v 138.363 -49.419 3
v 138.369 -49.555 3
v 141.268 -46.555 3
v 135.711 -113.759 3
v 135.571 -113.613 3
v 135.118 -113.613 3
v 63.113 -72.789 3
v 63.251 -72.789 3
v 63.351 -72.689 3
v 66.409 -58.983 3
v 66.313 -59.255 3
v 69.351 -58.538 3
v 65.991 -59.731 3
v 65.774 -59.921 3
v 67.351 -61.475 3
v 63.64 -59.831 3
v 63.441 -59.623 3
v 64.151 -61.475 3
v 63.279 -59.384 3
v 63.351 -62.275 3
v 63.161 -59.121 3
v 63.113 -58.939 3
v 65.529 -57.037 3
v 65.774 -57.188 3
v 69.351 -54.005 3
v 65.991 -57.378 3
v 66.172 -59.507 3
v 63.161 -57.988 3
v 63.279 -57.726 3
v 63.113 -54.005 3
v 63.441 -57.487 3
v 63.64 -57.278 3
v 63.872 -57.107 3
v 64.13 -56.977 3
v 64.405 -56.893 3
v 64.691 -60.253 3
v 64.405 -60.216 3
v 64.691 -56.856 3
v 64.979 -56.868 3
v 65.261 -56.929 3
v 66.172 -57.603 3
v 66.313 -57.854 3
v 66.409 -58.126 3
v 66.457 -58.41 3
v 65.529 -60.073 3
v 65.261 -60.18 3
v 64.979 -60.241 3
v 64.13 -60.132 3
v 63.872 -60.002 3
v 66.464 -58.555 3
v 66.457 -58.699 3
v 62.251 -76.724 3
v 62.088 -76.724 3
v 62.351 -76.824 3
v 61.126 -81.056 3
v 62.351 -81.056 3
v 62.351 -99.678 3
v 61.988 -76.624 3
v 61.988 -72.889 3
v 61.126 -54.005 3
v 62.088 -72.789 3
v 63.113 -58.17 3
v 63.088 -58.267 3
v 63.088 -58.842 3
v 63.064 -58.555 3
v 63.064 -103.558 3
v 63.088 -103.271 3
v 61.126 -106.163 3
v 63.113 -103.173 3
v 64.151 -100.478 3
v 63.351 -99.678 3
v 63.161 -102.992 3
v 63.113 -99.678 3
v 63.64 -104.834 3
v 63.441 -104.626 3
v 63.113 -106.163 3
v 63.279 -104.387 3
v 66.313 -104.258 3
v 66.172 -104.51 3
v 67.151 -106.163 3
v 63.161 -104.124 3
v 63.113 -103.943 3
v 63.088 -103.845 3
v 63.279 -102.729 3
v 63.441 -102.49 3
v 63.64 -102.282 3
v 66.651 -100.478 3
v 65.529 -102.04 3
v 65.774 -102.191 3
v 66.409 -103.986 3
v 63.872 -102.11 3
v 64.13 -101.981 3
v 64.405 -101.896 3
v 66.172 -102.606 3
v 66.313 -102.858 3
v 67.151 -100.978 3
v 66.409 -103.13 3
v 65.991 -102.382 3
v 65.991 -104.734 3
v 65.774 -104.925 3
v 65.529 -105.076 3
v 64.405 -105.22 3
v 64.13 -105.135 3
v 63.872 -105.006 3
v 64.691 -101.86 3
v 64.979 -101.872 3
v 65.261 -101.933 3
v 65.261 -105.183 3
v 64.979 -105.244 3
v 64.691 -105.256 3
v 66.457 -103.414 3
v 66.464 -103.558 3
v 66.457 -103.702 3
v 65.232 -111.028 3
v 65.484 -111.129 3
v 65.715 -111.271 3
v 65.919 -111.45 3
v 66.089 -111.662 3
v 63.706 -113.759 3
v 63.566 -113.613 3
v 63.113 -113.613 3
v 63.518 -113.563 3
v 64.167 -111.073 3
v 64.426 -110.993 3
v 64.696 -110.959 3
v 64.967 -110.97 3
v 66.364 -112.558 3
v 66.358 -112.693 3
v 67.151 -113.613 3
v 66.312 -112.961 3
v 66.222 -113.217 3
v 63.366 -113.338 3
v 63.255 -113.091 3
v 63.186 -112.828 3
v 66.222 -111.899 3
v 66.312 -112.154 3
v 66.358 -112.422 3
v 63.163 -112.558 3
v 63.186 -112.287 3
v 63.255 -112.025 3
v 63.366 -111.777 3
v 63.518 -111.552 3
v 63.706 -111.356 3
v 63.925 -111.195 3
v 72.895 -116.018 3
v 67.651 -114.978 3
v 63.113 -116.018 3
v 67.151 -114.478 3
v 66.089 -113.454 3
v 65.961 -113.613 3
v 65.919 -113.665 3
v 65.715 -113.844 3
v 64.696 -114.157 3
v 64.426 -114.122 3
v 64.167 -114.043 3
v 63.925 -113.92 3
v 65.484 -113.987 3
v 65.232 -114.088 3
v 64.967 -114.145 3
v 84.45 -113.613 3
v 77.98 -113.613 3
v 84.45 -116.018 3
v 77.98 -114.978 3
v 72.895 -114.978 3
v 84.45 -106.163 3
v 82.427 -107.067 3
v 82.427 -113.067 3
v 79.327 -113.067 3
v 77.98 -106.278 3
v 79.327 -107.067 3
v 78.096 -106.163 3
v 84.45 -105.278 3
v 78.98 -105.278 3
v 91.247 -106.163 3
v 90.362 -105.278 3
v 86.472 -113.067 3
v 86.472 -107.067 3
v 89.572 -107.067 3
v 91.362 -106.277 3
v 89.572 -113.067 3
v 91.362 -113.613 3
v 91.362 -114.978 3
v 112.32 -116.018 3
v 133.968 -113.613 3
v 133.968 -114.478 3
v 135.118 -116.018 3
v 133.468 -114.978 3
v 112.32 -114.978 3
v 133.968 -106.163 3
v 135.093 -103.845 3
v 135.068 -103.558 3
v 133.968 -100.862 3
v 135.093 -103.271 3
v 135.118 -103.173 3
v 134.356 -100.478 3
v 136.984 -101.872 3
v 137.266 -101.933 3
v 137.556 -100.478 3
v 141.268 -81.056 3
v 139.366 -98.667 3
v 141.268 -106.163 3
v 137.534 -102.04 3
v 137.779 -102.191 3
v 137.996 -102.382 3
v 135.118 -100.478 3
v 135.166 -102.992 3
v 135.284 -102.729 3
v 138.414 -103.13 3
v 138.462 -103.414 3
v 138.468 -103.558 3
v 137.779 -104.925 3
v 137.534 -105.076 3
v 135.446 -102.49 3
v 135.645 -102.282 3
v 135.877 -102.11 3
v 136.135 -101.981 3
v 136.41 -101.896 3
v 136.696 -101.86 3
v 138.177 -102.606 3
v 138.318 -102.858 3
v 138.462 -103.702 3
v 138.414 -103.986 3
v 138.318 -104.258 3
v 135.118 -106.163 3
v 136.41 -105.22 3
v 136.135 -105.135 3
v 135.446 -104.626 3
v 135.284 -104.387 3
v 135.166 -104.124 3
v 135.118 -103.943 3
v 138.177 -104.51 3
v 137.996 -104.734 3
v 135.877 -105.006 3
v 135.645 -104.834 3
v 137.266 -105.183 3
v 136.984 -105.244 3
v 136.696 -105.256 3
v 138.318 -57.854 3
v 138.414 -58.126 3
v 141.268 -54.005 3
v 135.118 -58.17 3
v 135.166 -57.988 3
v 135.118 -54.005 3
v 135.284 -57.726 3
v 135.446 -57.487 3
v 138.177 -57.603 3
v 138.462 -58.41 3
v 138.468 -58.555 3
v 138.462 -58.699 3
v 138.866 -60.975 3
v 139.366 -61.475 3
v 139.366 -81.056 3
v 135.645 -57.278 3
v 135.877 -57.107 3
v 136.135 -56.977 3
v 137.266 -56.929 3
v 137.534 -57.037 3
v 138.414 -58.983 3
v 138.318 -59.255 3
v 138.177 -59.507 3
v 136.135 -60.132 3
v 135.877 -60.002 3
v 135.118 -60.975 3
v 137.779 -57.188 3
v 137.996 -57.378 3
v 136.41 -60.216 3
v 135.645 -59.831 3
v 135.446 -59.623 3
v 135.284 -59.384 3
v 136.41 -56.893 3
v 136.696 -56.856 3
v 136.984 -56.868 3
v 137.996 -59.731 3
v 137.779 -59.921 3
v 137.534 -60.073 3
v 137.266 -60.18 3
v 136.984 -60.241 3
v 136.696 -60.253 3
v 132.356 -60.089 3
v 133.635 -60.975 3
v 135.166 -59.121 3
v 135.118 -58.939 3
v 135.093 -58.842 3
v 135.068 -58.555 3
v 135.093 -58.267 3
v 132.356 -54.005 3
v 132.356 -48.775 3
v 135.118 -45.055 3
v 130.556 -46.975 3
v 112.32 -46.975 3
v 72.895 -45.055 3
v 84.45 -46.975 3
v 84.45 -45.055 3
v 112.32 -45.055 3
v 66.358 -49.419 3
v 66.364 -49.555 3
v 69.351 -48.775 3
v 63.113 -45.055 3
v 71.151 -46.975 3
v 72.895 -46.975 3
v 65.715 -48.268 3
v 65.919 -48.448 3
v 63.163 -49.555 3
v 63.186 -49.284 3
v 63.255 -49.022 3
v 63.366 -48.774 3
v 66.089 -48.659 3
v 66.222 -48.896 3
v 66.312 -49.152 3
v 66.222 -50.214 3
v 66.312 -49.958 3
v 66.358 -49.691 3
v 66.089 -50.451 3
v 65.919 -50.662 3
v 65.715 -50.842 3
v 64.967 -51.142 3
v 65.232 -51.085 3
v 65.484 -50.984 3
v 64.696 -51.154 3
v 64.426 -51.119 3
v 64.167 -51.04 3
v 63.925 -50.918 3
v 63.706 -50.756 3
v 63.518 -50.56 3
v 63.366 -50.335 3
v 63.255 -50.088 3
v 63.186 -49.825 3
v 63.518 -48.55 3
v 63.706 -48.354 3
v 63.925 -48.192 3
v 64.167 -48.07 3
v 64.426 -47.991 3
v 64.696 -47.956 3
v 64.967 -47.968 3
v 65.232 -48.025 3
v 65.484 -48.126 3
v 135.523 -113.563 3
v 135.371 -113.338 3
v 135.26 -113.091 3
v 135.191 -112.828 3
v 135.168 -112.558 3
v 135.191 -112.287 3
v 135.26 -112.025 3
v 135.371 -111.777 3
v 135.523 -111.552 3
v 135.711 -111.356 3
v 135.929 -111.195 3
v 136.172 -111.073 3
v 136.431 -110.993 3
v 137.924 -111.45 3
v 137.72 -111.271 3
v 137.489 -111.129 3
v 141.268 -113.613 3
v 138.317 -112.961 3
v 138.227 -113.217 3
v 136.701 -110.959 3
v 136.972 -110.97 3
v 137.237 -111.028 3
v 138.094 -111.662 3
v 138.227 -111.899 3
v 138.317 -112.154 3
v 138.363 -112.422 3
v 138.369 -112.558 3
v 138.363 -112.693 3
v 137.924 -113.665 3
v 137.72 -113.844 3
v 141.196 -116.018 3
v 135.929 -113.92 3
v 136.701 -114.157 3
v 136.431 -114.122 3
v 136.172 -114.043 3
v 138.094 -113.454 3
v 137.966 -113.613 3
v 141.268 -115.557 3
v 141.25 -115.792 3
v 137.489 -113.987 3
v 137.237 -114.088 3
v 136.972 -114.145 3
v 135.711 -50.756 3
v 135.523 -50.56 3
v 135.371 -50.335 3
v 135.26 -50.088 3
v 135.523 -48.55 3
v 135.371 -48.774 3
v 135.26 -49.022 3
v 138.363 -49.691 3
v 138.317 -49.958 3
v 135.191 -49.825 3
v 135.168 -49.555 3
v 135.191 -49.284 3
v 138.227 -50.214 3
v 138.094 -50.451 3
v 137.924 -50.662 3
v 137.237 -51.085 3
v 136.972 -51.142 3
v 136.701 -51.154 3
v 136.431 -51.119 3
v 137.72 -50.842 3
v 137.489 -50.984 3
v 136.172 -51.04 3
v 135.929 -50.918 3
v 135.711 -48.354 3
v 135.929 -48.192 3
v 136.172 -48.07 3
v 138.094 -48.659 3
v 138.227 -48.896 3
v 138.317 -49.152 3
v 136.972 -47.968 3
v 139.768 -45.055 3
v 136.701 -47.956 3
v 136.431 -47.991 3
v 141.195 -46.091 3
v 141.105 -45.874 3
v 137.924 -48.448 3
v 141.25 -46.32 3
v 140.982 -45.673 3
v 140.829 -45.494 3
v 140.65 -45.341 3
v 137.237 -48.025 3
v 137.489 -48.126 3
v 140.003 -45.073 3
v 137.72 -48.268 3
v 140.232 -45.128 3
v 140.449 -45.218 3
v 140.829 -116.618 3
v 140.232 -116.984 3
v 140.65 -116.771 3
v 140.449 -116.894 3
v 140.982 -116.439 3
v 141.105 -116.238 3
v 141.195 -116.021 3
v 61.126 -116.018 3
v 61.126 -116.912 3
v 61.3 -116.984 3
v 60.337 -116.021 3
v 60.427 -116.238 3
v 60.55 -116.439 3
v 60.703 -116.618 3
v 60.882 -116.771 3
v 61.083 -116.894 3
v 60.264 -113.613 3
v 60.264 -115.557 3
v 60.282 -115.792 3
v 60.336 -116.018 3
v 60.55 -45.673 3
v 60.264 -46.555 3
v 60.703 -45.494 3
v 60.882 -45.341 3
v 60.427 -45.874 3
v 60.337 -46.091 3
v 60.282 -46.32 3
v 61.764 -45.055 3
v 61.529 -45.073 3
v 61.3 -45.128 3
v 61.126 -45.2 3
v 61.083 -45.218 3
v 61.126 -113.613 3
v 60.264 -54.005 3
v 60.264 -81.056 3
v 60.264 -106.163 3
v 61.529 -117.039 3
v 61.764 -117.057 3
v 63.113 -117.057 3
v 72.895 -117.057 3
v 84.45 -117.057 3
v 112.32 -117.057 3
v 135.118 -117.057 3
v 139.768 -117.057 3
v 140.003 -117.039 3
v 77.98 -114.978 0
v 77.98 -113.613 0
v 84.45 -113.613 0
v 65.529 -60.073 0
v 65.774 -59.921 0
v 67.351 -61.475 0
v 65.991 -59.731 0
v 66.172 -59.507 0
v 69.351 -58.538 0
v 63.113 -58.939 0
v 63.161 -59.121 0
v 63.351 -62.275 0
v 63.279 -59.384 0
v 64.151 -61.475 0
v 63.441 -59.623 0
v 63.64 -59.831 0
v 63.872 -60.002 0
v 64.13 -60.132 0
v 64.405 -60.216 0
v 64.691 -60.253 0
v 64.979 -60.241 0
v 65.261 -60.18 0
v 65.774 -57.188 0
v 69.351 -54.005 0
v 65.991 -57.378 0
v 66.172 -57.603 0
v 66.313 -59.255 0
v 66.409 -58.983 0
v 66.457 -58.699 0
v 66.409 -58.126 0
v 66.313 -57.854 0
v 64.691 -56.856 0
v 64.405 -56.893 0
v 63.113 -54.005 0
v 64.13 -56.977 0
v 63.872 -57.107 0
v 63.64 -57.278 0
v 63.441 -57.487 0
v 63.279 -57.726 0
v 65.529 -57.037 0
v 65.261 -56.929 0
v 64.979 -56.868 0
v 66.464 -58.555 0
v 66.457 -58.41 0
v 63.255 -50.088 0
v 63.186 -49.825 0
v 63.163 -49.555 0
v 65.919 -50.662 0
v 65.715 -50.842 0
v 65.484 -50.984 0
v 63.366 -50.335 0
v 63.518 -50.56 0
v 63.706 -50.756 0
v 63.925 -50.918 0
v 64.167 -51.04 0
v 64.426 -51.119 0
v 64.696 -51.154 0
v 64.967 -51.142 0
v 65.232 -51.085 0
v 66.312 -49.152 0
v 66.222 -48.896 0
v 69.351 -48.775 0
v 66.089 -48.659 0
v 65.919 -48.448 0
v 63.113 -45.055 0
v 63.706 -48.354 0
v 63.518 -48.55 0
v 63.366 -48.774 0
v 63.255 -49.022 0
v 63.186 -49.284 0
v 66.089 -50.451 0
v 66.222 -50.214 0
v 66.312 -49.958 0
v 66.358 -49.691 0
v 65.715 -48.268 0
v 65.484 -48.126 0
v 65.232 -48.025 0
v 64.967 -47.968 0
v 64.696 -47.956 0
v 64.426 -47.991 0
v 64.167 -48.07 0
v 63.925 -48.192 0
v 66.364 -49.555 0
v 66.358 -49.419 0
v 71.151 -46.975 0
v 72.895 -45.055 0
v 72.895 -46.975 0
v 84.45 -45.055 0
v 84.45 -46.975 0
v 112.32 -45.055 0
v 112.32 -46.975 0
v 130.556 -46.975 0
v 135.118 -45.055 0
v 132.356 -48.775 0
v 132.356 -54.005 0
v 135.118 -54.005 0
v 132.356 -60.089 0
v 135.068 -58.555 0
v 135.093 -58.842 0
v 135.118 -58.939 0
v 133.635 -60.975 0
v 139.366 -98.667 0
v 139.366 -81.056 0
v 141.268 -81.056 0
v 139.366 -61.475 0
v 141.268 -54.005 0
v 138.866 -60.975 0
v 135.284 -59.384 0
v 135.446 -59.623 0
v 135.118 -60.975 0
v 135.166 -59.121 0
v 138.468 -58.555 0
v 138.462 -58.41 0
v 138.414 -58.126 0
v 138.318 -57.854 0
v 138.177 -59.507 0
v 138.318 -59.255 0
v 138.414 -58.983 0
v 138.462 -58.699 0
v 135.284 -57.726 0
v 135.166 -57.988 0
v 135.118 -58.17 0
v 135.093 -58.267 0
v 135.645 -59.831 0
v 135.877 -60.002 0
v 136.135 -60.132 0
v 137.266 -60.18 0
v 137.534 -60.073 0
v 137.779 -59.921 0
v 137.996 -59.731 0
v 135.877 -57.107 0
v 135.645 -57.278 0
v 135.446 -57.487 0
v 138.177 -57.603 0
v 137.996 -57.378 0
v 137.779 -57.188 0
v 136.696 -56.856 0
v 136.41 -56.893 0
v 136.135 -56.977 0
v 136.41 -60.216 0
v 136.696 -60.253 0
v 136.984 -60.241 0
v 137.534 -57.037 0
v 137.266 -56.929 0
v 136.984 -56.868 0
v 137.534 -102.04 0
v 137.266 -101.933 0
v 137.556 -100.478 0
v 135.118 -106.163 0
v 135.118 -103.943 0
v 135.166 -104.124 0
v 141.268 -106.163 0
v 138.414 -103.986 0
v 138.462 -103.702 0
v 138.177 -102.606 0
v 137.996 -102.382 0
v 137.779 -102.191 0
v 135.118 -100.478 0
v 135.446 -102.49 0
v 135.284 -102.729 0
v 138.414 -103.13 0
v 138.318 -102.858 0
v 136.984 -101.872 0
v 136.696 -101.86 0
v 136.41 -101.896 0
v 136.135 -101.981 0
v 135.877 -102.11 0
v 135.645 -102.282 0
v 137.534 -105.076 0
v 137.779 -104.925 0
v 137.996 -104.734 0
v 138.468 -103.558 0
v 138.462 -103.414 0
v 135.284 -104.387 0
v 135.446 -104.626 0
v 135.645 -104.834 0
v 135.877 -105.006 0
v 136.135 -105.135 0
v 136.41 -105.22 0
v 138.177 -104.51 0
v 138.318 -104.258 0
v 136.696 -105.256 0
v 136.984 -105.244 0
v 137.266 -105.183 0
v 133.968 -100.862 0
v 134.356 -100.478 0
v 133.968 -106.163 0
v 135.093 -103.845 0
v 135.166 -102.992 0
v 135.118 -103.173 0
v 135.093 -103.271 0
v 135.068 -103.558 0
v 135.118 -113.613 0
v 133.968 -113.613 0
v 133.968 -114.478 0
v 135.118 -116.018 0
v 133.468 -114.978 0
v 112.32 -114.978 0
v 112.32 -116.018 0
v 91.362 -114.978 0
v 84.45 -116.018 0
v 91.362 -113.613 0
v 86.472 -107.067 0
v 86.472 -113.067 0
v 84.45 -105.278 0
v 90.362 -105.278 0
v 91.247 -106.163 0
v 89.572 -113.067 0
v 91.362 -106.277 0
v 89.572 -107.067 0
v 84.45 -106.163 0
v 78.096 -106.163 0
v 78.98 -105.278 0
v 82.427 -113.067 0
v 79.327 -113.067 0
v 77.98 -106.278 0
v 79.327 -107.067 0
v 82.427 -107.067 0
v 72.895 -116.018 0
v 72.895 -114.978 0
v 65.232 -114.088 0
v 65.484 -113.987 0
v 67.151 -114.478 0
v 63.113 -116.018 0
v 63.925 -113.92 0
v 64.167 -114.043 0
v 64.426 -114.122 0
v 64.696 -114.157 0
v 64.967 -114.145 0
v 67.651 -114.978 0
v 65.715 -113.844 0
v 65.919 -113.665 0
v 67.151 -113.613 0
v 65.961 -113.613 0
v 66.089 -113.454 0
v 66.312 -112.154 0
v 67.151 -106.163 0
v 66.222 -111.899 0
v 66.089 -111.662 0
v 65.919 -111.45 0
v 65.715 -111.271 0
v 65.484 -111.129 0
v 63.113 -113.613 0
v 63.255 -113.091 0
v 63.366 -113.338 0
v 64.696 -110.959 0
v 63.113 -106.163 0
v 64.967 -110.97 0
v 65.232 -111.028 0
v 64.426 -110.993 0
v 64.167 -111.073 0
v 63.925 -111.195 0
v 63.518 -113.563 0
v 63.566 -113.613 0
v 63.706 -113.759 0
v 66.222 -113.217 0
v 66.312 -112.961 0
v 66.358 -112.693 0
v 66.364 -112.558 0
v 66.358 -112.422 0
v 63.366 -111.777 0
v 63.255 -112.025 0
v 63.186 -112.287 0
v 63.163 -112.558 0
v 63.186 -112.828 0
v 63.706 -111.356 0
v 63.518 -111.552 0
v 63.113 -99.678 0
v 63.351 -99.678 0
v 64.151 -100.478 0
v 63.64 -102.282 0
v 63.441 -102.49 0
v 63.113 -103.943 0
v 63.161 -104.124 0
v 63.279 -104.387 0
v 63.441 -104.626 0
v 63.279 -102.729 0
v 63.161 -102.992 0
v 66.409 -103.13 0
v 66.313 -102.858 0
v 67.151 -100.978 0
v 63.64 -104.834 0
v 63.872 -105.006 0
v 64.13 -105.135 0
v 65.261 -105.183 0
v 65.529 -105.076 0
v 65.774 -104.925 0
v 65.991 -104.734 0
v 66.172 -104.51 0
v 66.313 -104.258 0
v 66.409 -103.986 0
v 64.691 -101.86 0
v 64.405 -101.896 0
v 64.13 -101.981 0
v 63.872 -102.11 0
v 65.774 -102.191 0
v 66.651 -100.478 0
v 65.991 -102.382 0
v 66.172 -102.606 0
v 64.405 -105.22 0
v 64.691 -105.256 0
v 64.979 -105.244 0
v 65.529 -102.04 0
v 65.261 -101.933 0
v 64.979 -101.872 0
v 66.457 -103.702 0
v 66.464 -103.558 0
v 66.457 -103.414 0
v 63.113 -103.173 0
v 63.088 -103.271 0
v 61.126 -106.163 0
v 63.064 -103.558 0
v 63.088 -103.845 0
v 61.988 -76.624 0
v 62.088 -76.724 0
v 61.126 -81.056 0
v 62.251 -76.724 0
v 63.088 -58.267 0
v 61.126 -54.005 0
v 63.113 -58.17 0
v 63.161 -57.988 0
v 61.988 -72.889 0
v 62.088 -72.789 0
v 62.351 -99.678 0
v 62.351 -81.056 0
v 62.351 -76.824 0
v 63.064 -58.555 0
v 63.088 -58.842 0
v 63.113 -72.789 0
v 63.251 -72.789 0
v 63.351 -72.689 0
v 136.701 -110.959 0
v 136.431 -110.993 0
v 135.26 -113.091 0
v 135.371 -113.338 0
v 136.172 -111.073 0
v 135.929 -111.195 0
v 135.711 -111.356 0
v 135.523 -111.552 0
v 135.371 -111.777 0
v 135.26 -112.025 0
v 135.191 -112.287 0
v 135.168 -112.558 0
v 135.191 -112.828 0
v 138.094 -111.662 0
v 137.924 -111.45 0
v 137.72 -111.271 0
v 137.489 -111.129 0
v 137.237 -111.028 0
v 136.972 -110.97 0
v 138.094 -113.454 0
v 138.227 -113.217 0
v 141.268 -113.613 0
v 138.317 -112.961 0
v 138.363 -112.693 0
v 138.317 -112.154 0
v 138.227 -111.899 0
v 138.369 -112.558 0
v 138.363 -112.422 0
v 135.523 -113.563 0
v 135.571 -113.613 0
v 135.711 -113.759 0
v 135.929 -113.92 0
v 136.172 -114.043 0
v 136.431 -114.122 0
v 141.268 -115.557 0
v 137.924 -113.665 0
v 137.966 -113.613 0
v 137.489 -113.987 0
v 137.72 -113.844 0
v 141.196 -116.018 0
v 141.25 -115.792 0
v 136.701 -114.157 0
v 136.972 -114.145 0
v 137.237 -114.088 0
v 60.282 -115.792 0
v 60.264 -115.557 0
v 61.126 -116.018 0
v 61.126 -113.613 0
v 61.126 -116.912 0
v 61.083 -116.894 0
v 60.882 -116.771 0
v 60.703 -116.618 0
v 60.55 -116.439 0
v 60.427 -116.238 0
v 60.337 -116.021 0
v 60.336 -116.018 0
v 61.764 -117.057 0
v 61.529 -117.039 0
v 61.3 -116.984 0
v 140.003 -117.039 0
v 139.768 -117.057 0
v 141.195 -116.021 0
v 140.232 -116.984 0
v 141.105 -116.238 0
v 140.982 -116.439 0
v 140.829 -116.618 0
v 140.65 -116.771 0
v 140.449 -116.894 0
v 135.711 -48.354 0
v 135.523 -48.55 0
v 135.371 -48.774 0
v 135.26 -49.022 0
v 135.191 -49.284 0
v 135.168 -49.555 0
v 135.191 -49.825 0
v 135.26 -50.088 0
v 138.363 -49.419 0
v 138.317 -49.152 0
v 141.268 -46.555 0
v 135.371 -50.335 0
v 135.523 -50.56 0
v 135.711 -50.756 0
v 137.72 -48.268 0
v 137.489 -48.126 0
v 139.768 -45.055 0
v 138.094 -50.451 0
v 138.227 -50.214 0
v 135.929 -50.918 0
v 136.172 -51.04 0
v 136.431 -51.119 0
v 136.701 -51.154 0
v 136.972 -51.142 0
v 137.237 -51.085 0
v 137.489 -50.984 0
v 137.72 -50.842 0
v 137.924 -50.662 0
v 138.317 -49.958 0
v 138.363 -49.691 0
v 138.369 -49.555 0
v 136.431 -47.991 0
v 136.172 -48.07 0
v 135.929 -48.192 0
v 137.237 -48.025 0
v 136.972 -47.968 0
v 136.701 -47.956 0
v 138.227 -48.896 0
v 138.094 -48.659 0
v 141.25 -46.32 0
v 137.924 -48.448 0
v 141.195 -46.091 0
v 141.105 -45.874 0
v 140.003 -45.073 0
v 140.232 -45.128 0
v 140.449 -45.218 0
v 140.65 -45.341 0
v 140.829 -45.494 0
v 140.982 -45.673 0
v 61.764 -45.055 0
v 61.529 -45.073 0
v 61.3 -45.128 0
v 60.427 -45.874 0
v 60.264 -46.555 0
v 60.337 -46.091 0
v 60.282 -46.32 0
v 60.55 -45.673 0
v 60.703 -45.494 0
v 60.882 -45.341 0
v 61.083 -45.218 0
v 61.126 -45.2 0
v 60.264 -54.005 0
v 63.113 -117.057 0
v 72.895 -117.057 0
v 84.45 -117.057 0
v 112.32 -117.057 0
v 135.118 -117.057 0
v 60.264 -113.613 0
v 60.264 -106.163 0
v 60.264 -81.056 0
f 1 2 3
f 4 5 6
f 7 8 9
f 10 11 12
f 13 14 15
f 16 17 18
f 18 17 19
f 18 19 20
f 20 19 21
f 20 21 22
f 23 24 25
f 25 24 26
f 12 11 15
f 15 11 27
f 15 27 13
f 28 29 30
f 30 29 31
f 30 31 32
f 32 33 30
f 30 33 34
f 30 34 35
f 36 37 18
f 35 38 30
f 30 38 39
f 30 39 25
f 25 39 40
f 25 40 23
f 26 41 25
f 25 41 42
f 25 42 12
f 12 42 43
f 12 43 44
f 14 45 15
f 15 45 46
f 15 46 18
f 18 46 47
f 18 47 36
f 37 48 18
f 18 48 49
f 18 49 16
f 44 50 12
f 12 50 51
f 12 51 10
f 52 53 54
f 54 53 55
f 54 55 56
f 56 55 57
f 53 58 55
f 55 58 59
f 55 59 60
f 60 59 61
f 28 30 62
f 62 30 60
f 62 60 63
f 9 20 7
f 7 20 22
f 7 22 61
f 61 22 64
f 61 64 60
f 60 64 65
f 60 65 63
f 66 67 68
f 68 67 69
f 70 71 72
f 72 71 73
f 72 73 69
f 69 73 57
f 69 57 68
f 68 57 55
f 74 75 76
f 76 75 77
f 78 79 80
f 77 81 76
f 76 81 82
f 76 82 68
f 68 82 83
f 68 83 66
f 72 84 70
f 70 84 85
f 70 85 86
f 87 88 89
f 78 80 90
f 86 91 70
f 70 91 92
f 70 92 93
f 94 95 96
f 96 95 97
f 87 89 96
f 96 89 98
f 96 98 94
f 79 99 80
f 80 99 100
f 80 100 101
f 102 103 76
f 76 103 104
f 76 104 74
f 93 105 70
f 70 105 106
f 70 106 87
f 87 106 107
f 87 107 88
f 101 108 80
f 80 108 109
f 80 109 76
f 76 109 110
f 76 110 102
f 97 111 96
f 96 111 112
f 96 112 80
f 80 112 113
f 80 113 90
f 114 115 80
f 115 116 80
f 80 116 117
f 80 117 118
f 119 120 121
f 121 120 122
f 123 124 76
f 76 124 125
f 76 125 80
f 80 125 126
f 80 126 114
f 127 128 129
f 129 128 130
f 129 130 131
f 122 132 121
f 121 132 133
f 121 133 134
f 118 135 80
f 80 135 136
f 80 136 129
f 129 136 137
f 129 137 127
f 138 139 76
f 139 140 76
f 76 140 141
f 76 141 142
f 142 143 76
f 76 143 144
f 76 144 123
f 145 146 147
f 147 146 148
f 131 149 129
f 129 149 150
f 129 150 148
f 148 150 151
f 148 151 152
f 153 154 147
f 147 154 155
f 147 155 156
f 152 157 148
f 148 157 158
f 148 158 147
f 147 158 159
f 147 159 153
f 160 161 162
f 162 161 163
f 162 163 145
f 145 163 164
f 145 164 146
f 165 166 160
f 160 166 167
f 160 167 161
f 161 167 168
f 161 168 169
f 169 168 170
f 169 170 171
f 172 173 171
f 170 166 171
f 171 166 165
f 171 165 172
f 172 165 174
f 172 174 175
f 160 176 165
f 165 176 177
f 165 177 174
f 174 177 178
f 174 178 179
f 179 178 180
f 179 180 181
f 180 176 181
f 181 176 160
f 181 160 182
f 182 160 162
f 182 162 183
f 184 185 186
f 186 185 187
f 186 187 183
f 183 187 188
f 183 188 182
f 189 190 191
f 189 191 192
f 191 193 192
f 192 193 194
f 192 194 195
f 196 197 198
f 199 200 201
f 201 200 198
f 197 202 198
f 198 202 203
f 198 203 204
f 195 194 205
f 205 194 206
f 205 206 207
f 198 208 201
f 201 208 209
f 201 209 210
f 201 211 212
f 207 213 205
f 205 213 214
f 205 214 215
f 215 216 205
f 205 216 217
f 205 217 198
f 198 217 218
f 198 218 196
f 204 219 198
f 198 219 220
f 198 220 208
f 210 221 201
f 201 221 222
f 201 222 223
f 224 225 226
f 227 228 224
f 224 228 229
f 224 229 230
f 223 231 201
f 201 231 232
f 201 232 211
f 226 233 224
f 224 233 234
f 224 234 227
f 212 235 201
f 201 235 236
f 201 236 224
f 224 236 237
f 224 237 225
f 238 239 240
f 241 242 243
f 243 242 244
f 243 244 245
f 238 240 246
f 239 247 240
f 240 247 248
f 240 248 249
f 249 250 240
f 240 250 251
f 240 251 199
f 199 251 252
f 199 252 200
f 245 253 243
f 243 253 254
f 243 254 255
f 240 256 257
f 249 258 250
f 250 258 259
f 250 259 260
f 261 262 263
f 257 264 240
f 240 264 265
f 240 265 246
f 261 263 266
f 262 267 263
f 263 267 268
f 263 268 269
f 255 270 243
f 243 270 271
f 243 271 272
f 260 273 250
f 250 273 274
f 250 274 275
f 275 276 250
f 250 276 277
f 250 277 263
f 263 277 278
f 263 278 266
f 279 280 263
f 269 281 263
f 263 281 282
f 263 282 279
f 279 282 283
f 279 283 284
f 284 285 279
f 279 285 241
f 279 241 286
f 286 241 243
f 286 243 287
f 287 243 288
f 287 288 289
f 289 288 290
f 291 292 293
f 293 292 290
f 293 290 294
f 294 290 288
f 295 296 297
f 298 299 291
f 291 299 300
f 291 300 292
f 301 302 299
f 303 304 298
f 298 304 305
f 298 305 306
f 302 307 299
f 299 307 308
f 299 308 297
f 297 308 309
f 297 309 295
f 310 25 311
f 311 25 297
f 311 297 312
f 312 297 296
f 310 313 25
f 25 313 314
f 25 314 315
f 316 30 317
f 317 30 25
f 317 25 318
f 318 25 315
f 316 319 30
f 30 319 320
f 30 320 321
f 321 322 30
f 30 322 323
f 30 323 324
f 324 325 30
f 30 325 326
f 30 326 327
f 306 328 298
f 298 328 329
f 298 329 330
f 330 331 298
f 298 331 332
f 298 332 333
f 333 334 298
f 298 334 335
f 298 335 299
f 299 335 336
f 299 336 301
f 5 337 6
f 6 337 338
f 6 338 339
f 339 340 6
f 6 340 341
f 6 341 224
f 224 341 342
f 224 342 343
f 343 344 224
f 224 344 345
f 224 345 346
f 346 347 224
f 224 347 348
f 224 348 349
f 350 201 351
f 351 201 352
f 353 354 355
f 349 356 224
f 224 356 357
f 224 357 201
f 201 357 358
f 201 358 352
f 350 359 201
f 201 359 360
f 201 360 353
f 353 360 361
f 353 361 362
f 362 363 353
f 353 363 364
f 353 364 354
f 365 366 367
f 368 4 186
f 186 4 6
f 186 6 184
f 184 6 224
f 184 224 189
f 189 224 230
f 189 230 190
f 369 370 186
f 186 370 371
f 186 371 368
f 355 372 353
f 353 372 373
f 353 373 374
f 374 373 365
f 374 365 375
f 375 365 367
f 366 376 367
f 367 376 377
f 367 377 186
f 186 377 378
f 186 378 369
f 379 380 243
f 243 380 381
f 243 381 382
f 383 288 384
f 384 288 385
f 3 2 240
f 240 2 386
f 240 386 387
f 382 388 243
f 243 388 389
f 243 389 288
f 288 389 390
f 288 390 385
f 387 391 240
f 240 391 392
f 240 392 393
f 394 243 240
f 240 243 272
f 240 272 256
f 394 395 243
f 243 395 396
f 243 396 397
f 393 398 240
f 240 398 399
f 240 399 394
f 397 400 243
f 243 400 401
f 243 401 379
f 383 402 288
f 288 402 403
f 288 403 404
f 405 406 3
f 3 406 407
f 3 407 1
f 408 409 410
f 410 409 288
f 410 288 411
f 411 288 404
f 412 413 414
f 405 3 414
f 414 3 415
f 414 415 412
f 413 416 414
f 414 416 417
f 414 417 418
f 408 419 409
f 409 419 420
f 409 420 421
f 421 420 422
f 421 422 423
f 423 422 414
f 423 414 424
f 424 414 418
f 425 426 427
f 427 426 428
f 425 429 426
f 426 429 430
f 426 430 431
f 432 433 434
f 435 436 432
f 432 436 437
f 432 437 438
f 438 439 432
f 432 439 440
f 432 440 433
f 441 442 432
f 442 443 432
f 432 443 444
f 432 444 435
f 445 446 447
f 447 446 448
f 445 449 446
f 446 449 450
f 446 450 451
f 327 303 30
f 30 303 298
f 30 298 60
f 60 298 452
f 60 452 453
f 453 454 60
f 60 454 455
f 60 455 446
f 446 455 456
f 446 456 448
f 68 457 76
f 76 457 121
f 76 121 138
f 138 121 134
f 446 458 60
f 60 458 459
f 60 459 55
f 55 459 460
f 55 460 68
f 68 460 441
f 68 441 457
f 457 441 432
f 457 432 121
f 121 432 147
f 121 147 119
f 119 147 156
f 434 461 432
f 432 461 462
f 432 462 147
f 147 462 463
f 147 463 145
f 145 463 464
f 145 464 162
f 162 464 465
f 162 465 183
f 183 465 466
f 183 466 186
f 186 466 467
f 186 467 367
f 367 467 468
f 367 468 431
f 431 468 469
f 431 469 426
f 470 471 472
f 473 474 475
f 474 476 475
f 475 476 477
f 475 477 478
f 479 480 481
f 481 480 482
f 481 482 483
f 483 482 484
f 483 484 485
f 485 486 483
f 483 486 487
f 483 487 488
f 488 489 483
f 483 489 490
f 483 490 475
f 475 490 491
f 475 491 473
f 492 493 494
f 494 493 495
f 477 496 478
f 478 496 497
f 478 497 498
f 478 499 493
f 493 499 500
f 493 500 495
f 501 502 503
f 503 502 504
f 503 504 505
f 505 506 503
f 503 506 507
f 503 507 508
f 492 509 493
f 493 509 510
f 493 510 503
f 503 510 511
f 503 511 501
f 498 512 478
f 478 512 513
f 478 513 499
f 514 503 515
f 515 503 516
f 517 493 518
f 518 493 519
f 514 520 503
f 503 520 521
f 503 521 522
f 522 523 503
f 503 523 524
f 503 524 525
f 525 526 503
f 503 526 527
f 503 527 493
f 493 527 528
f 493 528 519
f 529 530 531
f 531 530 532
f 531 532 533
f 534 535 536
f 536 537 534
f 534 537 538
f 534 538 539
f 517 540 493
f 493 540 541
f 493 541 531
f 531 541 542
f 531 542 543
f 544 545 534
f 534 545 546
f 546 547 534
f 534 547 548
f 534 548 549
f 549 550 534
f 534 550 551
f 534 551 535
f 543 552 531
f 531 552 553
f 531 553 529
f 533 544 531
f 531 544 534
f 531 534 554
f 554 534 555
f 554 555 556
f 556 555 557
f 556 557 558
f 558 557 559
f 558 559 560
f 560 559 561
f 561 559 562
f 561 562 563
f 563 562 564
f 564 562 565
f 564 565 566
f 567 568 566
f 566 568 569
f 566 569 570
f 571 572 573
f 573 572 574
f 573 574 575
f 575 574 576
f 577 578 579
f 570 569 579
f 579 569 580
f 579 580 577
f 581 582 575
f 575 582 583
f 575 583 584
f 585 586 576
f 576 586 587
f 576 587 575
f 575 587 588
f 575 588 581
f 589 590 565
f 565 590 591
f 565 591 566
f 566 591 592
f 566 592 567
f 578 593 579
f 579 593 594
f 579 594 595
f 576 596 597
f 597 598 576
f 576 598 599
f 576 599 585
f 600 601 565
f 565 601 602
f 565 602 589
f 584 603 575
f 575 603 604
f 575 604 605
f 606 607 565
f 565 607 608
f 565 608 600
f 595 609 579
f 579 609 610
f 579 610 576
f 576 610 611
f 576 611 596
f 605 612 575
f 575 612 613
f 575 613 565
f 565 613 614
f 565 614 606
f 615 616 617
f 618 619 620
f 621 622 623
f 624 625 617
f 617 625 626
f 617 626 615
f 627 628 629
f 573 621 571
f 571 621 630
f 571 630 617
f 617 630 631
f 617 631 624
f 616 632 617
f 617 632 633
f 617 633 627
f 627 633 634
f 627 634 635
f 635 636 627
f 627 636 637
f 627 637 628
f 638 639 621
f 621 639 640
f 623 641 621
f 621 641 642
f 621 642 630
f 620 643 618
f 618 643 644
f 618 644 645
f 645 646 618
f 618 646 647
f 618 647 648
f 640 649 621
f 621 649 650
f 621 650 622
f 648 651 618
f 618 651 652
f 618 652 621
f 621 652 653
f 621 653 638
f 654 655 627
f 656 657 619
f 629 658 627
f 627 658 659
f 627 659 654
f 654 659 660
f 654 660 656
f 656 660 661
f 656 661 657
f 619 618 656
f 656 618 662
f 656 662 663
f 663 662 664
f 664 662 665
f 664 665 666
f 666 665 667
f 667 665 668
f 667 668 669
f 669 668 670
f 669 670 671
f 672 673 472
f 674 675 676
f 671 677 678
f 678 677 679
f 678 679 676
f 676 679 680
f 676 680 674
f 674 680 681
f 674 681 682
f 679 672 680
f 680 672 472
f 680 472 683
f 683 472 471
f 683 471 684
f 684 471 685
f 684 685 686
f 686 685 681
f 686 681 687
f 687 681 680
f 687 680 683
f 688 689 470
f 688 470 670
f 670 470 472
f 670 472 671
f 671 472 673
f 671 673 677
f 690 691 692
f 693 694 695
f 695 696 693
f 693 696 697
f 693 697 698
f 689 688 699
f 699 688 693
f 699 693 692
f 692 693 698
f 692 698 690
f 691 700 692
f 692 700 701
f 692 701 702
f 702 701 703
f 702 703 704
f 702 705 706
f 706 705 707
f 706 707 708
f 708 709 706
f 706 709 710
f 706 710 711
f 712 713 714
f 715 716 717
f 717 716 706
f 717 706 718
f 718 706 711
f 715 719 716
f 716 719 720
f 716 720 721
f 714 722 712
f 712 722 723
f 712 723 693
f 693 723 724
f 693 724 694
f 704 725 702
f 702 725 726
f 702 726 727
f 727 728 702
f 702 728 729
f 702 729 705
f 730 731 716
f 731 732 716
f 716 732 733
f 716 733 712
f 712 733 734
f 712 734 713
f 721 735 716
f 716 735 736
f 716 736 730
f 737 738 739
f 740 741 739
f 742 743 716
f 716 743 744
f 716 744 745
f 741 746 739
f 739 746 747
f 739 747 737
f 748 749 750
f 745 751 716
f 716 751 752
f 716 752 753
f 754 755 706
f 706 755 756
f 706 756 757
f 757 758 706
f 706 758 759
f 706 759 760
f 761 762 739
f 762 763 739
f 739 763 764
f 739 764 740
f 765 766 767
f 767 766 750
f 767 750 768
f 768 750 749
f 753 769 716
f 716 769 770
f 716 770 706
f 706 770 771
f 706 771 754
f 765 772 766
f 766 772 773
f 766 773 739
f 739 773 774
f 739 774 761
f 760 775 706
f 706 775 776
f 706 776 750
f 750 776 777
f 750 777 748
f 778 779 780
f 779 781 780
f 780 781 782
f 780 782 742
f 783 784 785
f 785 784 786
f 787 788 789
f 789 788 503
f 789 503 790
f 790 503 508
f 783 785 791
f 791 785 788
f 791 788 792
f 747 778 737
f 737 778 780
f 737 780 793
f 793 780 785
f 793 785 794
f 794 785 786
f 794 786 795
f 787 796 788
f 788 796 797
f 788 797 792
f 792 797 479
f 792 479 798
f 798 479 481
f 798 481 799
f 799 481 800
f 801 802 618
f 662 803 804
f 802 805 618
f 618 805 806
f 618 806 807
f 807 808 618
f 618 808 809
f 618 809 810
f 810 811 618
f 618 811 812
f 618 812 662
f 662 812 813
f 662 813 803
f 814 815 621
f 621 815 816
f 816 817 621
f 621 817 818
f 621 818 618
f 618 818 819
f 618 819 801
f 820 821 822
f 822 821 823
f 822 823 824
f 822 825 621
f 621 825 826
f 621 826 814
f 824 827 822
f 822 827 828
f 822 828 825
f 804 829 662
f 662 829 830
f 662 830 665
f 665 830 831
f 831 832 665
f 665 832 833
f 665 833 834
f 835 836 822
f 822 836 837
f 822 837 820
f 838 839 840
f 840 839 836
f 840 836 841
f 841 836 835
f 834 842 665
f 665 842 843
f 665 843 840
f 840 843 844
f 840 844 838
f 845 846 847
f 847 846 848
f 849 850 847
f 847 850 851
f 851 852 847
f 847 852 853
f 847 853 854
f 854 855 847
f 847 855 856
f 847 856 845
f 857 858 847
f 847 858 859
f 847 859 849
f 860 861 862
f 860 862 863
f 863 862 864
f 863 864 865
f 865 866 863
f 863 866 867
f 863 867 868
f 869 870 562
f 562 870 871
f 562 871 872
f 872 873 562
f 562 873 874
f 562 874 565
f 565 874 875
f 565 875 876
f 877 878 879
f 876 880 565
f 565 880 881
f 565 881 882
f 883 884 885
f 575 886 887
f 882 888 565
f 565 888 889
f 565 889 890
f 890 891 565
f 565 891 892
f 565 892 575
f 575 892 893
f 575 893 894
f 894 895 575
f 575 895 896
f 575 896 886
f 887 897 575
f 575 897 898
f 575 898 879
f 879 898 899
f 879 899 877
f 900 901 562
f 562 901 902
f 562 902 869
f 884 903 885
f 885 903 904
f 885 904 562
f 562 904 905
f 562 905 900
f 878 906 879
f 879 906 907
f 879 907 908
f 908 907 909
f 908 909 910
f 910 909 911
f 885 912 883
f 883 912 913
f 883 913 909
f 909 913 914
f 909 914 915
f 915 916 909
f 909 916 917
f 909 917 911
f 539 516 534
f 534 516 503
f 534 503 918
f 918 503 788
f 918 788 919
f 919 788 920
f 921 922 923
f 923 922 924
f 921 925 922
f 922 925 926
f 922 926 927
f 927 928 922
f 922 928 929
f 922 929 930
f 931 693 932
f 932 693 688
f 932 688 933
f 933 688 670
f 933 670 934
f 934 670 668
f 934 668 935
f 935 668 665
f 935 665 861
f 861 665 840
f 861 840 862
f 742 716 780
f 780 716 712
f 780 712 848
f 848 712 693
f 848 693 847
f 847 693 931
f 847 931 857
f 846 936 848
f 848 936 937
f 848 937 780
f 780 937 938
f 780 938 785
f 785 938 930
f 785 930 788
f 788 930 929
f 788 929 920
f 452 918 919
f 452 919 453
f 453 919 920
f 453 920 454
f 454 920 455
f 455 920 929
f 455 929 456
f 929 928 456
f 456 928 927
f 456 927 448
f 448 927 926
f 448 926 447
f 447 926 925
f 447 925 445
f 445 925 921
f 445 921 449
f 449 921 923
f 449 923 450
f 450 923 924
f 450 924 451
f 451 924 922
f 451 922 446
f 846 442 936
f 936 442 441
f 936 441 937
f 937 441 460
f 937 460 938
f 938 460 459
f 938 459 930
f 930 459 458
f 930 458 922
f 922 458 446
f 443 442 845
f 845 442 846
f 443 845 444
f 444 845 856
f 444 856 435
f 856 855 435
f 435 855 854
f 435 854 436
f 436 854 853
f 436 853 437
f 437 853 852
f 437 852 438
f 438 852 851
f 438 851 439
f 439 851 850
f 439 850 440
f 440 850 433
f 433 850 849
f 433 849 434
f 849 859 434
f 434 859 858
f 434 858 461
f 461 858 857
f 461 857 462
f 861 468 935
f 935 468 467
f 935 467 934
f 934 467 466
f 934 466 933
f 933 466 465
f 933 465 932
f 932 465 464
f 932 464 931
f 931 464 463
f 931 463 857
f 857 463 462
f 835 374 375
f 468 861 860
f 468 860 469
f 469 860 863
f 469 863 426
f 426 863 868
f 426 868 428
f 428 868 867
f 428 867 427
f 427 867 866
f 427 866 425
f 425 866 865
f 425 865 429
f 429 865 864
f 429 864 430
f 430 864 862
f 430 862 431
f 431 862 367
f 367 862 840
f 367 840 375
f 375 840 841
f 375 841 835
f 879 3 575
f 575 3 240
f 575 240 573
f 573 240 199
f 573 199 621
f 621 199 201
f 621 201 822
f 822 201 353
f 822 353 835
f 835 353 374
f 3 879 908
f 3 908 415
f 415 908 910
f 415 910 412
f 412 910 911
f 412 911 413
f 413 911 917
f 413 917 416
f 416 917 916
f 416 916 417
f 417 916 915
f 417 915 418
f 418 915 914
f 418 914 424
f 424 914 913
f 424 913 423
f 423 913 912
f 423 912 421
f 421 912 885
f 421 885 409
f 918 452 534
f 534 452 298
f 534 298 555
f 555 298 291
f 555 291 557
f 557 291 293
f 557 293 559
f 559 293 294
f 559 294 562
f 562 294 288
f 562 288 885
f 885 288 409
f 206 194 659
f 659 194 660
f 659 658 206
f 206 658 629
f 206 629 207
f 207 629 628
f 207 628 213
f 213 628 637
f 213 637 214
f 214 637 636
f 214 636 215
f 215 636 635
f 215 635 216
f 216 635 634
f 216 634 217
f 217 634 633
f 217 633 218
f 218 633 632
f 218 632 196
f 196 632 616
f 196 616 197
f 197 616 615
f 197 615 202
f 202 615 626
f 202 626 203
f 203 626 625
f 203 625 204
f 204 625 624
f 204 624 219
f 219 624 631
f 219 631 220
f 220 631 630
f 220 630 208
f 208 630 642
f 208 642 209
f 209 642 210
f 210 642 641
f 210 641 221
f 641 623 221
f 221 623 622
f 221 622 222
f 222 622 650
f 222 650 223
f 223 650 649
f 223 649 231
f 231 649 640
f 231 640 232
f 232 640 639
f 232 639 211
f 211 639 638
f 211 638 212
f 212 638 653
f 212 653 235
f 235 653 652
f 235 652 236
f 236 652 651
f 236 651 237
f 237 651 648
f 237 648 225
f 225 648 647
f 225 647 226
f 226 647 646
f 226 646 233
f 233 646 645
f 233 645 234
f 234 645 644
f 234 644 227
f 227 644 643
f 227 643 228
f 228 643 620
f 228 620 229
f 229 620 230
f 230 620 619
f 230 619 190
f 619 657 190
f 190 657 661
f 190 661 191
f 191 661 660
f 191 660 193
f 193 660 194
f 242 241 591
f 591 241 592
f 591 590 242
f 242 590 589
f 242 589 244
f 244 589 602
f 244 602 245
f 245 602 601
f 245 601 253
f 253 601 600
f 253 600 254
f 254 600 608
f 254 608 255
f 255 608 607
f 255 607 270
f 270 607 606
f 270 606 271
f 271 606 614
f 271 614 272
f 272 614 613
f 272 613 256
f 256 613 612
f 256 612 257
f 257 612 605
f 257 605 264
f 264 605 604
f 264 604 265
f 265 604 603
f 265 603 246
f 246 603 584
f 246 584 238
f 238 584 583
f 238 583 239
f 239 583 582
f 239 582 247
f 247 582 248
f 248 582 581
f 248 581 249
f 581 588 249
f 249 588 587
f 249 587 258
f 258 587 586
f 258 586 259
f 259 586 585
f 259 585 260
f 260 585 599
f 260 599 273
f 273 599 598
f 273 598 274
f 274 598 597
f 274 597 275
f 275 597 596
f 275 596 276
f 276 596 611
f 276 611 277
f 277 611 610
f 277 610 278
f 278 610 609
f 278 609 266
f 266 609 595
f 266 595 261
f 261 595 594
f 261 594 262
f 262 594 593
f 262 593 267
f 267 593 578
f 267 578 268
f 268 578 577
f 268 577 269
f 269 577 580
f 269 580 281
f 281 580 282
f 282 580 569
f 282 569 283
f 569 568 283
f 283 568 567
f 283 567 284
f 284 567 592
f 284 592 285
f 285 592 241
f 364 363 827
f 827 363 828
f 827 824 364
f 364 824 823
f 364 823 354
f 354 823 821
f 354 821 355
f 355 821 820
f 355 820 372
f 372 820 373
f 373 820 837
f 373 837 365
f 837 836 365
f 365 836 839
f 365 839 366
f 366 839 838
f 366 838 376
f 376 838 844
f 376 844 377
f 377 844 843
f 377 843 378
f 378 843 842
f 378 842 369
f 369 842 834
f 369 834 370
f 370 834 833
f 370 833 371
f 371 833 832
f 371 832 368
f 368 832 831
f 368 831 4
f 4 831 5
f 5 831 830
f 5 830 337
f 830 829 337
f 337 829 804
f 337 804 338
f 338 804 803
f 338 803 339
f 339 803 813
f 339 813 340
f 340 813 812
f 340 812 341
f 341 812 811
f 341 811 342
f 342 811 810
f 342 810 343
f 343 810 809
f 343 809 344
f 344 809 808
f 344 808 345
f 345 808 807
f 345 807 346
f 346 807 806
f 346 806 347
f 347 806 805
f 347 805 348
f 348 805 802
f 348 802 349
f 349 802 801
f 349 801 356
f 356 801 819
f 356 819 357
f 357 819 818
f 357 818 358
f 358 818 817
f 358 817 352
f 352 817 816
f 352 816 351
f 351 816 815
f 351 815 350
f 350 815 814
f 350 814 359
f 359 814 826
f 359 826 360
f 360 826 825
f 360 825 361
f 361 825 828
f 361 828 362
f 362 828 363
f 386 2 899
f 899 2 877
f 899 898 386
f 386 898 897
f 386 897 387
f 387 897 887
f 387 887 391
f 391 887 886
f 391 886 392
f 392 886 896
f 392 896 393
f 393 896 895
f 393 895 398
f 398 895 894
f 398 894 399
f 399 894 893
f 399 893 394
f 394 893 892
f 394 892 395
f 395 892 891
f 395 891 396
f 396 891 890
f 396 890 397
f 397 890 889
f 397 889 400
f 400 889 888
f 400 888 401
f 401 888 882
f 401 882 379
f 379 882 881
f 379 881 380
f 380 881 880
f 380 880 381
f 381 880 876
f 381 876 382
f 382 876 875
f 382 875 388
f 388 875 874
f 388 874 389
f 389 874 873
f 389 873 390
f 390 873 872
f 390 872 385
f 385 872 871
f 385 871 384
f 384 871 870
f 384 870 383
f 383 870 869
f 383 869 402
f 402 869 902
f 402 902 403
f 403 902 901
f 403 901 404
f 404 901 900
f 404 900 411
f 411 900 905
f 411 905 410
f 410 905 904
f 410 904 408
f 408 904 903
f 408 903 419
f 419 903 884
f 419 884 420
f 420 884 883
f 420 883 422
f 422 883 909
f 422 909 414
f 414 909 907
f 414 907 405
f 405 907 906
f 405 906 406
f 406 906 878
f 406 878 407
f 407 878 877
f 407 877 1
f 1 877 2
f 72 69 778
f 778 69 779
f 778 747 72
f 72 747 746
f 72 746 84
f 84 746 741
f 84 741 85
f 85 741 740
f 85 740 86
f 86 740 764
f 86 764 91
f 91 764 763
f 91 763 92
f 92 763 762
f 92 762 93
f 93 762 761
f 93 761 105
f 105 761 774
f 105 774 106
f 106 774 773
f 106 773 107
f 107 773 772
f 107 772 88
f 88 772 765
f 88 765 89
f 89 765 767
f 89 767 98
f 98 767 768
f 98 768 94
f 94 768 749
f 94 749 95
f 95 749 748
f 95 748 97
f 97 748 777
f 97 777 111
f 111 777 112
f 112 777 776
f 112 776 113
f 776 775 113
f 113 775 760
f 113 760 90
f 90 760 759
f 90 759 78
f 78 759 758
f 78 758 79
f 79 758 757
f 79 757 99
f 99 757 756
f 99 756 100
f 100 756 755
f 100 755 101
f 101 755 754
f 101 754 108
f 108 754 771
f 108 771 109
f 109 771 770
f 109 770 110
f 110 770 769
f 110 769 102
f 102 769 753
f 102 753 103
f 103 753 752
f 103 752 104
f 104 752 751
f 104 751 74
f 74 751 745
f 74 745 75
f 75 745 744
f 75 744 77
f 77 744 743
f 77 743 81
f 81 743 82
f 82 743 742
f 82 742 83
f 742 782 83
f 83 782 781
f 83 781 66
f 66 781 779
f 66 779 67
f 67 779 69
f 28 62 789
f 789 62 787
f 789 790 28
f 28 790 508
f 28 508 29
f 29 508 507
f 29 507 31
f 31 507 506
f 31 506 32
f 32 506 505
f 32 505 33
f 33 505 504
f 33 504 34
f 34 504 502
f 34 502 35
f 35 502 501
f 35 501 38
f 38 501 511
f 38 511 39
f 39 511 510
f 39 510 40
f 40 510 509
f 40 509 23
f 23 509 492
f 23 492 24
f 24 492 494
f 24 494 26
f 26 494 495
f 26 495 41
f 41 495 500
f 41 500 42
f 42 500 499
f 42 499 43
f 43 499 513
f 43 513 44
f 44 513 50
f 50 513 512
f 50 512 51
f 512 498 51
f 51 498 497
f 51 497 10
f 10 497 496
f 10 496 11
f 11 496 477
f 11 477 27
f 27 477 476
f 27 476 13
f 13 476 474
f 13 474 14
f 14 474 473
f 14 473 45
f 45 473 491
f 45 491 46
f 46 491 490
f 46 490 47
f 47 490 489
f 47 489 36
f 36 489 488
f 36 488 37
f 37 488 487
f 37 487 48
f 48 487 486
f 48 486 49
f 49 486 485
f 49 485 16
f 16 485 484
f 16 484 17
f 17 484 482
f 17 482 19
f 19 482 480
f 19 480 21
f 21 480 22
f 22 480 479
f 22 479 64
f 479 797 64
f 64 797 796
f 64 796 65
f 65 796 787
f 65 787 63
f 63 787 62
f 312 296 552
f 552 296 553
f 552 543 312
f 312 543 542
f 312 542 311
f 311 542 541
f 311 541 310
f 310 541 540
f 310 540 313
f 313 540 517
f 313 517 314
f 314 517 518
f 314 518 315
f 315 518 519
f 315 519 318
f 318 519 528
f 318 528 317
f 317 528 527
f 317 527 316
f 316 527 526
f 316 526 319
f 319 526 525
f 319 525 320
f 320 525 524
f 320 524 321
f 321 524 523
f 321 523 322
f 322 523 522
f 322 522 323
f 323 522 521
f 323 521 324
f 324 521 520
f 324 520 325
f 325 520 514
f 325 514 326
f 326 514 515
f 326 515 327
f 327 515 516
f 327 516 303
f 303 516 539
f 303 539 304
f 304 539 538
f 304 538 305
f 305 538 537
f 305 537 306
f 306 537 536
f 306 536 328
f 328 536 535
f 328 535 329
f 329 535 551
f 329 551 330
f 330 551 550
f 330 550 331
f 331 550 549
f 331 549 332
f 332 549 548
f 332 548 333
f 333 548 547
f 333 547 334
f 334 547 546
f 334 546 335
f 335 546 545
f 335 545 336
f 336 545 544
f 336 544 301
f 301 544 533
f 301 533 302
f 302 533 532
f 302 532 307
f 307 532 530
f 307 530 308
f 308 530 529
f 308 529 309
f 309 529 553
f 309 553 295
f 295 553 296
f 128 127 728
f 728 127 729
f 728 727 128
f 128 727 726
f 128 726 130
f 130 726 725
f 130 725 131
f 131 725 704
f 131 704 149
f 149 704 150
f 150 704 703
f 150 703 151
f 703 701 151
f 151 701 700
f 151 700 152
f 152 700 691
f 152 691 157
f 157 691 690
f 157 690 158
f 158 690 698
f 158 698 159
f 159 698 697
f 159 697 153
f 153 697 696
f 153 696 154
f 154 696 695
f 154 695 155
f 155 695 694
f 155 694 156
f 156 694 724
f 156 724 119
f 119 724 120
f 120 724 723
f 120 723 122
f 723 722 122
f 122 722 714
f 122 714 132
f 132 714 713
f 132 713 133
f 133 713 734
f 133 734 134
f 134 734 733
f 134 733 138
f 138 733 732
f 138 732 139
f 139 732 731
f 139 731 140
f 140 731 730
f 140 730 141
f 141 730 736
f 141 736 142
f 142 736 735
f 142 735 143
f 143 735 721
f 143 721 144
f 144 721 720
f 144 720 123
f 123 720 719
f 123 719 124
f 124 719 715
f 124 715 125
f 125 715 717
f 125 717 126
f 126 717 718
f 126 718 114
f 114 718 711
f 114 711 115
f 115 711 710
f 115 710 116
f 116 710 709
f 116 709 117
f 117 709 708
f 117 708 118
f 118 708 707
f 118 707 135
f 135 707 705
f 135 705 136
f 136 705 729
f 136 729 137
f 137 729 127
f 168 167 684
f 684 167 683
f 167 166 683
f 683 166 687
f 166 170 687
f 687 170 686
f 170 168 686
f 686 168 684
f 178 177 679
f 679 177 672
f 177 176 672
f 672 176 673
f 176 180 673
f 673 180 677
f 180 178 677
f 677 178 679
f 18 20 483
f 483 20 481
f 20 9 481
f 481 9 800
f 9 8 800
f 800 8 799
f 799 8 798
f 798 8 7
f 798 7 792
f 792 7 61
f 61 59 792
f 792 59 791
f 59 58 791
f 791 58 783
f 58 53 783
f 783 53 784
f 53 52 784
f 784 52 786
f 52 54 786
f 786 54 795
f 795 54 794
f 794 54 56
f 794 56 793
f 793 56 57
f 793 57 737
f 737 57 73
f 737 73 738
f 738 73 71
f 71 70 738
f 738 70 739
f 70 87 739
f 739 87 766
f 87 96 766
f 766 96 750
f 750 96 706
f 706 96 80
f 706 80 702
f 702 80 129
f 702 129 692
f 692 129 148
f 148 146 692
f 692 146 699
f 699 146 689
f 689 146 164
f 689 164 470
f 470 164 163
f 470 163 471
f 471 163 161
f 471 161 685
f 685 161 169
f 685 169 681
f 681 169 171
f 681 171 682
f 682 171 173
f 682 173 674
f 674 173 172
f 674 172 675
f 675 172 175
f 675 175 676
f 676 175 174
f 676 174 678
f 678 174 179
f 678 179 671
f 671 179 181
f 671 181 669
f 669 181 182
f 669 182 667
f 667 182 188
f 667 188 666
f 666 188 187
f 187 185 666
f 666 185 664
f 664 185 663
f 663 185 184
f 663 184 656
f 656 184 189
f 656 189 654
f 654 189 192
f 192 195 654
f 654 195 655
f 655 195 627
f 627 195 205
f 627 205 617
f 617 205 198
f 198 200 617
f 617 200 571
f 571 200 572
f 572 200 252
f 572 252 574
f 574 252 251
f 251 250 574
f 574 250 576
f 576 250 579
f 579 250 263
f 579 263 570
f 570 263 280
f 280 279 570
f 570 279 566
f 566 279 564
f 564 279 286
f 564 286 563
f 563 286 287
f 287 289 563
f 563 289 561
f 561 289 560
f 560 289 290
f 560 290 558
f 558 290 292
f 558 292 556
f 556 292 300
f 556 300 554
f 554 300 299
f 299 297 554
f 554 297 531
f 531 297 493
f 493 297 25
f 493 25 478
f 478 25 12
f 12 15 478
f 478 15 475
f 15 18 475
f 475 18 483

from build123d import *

# Parameters (mm, degrees)
MODEL_R                 = 1.7
MODEL_R_2               = 1.600279216
MODEL_W                 = 3.1
MODEL_H                 = 6
SALIENTE_EXTRUIR1_DEPTH = 3


with BuildPart() as part:
    # Model → Saliente-Extruir1 (new body)
    with BuildSketch(Plane.XY):
        with BuildLine():
            Line((139.768153306, -45.054934941), (61.763543448, -45.054934941))
            ThreePointArc((61.763543448, -45.054934941), (60.702883276, -45.494274769), (60.263543448, -46.554934941))
            Line((60.263543448, -46.554934941), (60.263543448, -115.557339175))
            ThreePointArc((60.263543448, -115.557339175), (60.702883276, -116.617999347), (61.763543448, -117.057339175))
            Line((61.763543448, -117.057339175), (139.768153306, -117.057339175))
            ThreePointArc((139.768153306, -117.057339175), (140.828813478, -116.617999347), (141.268153306, -115.557339175))
            Line((141.268153306, -115.557339175), (141.268153306, -46.554934941))
            ThreePointArc((141.268153306, -46.554934941), (140.828813478, -45.494274769), (139.768153306, -45.054934941))
        make_face()
        with Locations((136.768487808, -103.558008179)):
            Circle(MODEL_R, mode=Mode.SUBTRACT)
        with Locations((136.768487808, -58.554600438)):
            Circle(MODEL_R, mode=Mode.SUBTRACT)
        with Locations((136.768487808, -112.557673677)):
            Circle(MODEL_R_2, mode=Mode.SUBTRACT)
        with Locations((136.768487808, -49.554934941)):
            Circle(MODEL_R_2, mode=Mode.SUBTRACT)
        with Locations((64.763543448, -103.558008179)):
            Circle(MODEL_R, mode=Mode.SUBTRACT)
        with Locations((64.763543448, -58.554600438)):
            Circle(MODEL_R, mode=Mode.SUBTRACT)
        with Locations((64.763543448, -49.554934941)):
            Circle(MODEL_R_2, mode=Mode.SUBTRACT)
        with Locations((64.763543448, -112.557673677)):
            Circle(MODEL_R_2, mode=Mode.SUBTRACT)
        with Locations((80.876831082, -110.067386969)):
            Rectangle(MODEL_W, MODEL_H, mode=Mode.SUBTRACT)
        with Locations((88.022204789, -110.067386969)):
            Rectangle(MODEL_W, MODEL_H, mode=Mode.SUBTRACT)
        Polygon((63.351345037, -62.275422733), (63.351345037, -72.689428622), (63.251345037, -72.789428622), (62.088360478, -72.789428622), (61.988360478, -72.889428622), (61.988360478, -76.624152209), (62.088360478, -76.724152209), (62.251345037, -76.724152209), (62.351345037, -76.824152209), (62.351345037, -99.677826967), (63.351345037, -99.677826967), (64.151345037, -100.477826967), (66.651345037, -100.477826967), (67.151345037, -100.977826967), (67.151345037, -114.477826967), (67.651345037, -114.977826967), (77.980472194, -114.977826967), (77.980472194, -106.277895967), (78.980472194, -105.277865819), (90.361604846, -105.277522697), (91.361604845, -106.277492548), (91.361604845, -114.977826967), (133.468205597, -114.977826967), (133.968205597, -114.477826967), (133.968205597, -100.862451961), (134.355954895, -100.477826967), (137.555954895, -100.477826967), (139.366374234, -98.667407629), (139.366374234, -61.475422733), (138.866374234, -60.975422733), (133.634687553, -60.975422733), (132.355954895, -60.088974267), (132.355954895, -48.775422733), (130.555954895, -46.975422733), (71.151345037, -46.975422733), (69.351345037, -48.775422733), (69.351345037, -58.538415371), (67.351345037, -61.475422733), (64.151345037, -61.475422733), align=None, mode=Mode.SUBTRACT)
    extrude(amount=SALIENTE_EXTRUIR1_DEPTH)


solid = part.part
